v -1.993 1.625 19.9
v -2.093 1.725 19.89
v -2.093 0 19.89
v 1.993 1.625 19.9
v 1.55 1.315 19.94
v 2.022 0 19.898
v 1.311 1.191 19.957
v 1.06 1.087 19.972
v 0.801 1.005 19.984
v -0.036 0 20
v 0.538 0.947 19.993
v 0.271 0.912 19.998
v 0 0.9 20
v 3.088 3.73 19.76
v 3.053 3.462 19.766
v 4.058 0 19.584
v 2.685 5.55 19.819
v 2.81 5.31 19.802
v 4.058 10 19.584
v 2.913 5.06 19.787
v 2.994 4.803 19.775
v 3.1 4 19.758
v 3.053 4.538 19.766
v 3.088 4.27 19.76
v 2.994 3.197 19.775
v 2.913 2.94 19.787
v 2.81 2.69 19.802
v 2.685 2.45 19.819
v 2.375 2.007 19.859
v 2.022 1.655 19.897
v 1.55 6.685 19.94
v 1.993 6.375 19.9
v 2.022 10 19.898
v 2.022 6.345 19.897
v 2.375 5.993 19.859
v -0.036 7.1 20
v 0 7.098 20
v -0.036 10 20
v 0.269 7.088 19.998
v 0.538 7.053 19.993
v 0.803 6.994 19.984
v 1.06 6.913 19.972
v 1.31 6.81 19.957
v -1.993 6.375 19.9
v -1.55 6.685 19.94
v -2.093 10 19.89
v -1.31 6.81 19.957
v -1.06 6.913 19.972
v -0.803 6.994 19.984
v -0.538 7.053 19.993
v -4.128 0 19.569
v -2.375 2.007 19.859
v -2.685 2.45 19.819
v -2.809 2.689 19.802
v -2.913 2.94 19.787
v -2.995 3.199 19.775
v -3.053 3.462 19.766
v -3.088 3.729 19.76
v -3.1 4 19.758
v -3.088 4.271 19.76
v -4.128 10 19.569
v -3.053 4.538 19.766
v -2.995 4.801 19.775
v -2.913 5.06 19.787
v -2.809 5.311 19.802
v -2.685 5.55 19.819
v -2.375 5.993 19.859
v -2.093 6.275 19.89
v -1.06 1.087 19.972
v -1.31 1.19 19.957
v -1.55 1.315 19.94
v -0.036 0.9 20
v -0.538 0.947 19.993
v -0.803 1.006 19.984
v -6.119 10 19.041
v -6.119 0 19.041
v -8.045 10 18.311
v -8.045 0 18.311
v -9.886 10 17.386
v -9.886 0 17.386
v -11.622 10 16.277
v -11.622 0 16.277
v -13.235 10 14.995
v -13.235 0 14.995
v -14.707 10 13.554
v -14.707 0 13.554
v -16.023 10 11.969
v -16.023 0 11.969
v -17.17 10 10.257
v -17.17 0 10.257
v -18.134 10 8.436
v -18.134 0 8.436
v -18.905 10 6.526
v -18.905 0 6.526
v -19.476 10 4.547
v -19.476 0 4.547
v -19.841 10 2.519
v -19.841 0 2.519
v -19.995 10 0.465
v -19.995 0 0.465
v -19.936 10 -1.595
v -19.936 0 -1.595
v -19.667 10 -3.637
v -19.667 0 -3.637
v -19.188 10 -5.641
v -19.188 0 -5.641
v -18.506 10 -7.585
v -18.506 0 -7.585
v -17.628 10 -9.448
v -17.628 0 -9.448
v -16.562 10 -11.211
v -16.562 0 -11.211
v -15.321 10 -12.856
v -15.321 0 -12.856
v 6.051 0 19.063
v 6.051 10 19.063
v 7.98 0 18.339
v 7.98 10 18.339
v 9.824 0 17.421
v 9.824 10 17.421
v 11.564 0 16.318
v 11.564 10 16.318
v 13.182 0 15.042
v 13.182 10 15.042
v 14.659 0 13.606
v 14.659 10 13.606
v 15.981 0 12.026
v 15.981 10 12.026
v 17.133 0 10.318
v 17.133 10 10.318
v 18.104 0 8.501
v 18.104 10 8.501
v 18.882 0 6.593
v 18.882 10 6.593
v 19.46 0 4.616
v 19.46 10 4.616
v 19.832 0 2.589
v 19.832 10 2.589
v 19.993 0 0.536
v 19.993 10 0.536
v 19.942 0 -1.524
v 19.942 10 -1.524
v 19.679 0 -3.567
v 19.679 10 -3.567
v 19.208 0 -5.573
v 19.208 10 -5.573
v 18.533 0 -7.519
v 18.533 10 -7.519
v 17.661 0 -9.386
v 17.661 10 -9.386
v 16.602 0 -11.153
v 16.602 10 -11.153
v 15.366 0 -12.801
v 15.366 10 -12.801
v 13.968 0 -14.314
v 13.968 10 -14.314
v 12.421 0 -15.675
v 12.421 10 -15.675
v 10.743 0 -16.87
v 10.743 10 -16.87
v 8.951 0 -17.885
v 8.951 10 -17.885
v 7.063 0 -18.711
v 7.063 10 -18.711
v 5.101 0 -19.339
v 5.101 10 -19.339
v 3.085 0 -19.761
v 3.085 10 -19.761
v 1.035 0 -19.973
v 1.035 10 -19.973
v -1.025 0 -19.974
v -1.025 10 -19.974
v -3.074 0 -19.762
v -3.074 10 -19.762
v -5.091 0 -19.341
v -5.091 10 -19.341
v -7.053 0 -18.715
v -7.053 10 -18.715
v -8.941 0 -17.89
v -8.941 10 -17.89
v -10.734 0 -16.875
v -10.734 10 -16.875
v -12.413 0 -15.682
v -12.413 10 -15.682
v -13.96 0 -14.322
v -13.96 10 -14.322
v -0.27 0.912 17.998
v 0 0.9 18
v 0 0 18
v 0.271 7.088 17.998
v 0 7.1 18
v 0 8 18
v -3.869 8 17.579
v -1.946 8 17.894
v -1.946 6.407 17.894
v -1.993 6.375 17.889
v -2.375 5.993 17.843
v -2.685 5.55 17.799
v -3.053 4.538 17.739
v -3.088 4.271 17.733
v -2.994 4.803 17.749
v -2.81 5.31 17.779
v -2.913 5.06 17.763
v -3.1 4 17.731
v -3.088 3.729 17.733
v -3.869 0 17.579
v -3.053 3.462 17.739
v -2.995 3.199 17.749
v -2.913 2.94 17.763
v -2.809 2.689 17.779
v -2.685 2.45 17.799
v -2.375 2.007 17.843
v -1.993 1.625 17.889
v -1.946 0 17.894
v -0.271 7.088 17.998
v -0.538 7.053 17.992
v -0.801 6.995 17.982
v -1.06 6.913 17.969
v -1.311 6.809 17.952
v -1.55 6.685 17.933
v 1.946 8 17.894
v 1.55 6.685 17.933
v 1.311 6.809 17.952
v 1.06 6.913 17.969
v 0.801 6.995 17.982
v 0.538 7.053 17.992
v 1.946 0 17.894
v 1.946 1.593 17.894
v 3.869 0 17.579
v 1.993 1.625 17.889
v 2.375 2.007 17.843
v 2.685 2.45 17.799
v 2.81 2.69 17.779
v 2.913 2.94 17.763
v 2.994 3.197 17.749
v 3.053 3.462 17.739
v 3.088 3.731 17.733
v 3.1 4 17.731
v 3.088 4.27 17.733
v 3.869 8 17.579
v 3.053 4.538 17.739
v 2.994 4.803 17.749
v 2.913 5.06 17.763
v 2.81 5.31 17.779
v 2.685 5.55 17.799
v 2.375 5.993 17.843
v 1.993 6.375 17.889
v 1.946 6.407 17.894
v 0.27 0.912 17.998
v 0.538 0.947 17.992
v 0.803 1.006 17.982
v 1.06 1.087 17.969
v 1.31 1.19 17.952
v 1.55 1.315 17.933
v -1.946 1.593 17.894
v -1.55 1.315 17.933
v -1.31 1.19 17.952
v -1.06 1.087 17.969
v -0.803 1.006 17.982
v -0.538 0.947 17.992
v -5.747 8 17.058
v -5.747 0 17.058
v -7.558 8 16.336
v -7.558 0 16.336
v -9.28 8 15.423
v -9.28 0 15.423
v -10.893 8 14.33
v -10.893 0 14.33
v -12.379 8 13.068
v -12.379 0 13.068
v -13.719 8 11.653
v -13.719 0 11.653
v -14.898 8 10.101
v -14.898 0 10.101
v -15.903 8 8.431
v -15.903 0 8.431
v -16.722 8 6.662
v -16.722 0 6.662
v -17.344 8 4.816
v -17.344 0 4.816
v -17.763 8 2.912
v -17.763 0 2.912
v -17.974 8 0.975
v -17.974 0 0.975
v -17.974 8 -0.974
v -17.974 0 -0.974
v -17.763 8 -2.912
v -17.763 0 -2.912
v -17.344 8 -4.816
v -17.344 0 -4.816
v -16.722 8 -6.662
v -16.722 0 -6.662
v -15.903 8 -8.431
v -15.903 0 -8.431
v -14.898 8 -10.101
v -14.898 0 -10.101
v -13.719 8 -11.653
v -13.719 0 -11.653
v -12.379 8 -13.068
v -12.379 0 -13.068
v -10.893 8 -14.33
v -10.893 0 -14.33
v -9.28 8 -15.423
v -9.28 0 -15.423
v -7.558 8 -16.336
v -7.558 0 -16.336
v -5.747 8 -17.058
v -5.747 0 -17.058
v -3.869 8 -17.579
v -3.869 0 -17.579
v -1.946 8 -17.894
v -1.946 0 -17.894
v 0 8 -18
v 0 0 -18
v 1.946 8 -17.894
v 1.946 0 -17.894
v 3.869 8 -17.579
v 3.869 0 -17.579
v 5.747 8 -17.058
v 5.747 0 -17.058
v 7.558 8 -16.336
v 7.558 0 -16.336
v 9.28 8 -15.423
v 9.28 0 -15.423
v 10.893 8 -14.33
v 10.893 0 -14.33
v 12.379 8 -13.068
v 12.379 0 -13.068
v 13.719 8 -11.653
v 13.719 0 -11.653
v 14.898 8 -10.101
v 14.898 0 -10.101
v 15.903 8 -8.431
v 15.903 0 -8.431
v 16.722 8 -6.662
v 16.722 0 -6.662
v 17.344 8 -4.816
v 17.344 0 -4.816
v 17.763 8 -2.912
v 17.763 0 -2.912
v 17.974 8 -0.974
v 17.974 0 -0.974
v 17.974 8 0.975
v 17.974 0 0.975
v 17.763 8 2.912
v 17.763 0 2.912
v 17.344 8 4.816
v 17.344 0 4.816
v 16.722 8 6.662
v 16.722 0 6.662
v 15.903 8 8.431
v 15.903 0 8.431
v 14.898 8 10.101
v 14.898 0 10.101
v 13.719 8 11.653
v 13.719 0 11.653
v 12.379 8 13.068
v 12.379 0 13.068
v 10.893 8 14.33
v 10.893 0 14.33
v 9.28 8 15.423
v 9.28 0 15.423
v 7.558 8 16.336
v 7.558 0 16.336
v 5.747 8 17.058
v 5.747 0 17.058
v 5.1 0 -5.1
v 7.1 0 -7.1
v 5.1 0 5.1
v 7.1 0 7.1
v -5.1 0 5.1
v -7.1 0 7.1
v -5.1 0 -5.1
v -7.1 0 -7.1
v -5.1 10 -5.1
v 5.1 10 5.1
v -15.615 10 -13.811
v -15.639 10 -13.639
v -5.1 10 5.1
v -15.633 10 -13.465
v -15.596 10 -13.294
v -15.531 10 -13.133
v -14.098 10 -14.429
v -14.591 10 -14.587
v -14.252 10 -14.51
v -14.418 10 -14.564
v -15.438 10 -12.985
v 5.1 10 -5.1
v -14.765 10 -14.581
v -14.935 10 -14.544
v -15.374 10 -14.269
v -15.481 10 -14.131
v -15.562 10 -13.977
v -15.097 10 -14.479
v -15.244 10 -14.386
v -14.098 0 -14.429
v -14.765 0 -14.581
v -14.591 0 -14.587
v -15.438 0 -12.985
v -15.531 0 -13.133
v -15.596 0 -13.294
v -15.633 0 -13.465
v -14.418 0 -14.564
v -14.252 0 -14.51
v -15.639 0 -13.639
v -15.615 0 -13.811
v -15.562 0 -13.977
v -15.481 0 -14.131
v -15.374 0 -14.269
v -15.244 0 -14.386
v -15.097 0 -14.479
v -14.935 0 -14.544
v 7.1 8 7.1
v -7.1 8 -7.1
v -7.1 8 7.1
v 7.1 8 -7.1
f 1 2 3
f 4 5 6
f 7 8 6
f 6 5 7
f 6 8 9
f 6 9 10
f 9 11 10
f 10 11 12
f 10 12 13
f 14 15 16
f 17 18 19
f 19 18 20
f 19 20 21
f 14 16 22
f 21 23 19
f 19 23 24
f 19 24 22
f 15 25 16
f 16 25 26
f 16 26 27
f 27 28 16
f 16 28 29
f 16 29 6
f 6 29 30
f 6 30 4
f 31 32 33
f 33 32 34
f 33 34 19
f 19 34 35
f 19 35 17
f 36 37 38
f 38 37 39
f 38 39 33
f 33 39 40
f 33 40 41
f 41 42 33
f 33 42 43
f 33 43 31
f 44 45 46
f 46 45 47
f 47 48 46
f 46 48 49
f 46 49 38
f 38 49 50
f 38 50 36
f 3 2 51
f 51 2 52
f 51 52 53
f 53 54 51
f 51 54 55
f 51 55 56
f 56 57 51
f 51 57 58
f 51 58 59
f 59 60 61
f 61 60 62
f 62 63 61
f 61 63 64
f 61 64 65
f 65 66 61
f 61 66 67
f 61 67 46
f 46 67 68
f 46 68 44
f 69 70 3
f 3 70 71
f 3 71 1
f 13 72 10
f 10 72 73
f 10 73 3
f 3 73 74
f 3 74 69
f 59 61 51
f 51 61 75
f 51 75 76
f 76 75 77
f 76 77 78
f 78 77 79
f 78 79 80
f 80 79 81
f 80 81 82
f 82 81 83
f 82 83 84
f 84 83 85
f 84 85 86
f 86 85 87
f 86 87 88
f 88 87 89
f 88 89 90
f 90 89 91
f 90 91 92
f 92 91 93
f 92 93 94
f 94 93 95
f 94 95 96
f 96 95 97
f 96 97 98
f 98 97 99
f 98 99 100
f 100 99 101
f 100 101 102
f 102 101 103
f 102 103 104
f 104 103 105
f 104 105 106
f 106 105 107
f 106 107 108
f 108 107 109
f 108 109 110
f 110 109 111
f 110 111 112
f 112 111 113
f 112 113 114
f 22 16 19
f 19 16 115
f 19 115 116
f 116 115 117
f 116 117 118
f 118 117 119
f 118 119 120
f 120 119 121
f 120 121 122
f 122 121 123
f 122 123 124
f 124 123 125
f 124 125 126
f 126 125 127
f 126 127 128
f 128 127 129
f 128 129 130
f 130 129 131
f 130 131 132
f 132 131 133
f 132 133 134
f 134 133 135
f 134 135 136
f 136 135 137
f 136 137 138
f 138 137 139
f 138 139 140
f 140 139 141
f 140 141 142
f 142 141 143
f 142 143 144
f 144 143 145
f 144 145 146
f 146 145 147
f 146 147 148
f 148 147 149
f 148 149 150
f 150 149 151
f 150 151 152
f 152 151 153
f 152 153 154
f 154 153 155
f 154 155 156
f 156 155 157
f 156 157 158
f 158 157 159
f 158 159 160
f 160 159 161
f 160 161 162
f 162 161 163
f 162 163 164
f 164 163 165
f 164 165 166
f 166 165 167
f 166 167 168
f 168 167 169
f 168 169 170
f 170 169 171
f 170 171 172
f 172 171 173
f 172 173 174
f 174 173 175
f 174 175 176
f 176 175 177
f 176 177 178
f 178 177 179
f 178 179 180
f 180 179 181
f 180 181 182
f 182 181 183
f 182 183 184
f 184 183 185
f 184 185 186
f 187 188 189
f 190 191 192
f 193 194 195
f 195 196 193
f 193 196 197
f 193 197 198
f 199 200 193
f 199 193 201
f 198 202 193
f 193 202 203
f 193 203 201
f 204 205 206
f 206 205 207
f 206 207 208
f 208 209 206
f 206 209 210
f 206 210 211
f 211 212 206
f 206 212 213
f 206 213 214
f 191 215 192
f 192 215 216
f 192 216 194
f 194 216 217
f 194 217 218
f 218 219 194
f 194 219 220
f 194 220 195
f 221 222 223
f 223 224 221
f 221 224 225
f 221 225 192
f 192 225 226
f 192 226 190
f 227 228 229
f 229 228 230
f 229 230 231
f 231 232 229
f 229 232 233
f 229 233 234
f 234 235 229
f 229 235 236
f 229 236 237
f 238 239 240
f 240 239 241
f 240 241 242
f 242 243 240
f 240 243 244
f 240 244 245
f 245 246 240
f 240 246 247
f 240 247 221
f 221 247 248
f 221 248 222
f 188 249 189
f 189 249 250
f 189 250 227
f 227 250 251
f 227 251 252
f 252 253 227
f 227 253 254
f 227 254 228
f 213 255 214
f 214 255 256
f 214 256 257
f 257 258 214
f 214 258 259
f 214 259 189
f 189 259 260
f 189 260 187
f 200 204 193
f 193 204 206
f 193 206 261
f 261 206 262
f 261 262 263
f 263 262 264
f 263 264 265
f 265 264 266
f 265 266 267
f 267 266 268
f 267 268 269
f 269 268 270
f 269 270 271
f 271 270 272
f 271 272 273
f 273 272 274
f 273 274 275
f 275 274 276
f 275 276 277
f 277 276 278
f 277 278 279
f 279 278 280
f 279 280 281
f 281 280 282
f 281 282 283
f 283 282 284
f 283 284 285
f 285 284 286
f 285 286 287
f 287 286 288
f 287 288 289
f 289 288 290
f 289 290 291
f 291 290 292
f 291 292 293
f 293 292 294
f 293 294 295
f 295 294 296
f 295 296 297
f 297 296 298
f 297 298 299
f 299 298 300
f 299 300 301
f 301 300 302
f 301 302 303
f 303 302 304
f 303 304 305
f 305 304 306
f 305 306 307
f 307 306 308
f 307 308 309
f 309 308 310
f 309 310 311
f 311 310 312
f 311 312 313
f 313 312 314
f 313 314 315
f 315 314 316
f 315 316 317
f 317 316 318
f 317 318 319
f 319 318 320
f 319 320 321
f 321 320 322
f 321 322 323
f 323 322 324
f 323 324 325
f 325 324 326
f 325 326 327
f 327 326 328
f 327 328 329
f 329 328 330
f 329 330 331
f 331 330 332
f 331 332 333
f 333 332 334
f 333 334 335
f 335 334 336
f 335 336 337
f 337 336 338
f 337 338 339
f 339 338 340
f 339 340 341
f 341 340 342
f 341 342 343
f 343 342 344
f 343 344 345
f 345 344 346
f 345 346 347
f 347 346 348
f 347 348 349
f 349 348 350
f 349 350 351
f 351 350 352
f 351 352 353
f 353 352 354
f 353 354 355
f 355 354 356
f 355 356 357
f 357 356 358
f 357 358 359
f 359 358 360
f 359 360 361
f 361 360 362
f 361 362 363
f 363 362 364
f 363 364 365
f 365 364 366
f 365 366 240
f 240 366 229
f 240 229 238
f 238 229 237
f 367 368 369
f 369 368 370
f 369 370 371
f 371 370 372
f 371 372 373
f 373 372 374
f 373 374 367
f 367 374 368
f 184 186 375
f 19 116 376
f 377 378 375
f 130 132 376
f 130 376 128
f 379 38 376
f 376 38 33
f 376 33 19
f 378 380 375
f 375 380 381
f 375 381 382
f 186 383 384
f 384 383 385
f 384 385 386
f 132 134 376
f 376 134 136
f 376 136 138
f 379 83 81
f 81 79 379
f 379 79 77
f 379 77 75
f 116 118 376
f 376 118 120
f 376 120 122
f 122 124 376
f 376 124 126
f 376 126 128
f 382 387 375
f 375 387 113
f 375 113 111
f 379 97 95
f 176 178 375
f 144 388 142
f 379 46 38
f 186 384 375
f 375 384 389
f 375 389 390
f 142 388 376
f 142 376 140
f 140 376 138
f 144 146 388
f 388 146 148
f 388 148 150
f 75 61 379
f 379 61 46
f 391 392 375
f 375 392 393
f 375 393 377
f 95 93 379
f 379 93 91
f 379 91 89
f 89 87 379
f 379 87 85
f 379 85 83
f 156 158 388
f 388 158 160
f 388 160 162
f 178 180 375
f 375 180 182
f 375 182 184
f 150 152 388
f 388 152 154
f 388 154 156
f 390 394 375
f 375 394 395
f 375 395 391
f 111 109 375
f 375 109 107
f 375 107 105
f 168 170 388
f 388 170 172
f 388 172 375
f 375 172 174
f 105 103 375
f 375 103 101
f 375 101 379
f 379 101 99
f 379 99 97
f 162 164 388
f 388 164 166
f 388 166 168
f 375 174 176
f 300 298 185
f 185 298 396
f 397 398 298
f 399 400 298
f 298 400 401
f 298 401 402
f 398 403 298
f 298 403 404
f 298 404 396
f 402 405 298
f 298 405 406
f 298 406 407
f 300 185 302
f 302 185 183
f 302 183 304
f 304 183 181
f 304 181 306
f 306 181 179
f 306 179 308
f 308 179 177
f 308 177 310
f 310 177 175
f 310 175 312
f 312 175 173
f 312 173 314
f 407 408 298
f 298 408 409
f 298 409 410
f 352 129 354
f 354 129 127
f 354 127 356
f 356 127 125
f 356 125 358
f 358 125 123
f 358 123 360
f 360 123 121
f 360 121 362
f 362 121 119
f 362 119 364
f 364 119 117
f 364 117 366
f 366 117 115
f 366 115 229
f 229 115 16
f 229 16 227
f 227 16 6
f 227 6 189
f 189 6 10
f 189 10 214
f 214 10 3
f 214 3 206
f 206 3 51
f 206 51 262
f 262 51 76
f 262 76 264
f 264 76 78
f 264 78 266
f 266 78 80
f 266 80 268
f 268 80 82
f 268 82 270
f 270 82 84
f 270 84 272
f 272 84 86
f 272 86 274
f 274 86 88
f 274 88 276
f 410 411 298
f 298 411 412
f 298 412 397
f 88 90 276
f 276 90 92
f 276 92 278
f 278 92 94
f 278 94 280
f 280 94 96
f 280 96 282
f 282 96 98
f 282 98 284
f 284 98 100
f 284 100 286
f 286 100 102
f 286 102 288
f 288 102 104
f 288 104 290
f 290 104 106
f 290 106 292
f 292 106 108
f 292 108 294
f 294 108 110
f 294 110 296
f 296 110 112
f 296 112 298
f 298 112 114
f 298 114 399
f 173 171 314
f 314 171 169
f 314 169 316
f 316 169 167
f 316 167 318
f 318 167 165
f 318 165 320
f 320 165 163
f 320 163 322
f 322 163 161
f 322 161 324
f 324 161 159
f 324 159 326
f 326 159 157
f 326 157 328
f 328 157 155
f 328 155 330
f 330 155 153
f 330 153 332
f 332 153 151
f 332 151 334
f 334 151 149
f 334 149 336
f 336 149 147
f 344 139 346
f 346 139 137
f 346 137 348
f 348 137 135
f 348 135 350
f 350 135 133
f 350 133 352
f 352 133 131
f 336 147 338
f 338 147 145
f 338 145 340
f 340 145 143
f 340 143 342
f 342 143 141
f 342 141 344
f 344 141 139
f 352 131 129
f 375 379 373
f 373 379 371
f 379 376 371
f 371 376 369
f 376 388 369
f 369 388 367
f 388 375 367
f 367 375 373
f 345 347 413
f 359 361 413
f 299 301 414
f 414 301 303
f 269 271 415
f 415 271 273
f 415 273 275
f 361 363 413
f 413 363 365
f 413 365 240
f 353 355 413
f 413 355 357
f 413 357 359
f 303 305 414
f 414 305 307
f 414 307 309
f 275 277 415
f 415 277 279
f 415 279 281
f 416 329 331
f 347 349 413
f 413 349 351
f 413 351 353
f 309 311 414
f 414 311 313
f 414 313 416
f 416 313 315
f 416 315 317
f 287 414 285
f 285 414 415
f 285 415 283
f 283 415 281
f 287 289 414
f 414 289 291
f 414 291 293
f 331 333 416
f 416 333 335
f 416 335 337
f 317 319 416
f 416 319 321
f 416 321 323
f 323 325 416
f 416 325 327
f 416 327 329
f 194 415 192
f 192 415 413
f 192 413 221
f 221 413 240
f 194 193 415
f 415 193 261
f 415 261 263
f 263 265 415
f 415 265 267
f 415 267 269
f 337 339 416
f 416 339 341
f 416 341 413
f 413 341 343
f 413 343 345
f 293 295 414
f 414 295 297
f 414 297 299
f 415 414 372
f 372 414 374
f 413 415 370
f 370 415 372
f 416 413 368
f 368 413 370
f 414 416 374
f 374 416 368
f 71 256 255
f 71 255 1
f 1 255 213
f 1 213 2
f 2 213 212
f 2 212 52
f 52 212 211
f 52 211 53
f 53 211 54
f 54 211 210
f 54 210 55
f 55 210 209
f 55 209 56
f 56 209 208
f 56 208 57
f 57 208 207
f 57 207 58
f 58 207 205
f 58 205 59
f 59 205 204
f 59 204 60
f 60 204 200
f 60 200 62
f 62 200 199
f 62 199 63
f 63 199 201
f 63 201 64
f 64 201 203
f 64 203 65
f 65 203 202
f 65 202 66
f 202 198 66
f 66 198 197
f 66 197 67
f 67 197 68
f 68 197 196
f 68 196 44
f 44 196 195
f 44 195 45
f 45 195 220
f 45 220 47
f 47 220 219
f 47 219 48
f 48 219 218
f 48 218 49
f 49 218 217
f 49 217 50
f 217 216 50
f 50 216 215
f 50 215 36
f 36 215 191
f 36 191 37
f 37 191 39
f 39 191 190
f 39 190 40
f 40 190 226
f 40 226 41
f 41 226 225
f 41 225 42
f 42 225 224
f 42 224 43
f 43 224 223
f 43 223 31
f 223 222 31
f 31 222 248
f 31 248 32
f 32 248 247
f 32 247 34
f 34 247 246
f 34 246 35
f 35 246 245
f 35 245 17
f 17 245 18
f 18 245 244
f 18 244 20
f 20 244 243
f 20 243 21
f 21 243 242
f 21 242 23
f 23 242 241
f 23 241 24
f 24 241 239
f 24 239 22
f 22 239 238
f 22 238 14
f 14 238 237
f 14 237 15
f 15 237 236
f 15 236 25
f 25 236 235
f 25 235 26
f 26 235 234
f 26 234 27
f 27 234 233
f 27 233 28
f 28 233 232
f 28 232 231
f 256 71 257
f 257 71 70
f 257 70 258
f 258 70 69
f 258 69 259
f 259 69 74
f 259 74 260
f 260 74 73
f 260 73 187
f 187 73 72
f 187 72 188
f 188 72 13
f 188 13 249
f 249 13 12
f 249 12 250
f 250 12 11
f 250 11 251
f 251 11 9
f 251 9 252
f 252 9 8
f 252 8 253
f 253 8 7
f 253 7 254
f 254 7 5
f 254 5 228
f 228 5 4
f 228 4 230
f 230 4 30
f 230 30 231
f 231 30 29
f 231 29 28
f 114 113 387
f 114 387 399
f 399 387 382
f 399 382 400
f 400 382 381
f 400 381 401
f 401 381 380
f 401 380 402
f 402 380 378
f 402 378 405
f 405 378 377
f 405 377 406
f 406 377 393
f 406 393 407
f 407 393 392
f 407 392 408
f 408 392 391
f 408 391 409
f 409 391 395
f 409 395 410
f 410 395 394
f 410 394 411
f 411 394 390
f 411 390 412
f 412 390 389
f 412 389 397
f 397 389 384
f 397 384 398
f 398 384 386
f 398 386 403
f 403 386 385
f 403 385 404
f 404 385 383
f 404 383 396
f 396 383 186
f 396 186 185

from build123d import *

# Parameters (mm, degrees)
SKETCH1_R           = 20
BOSS_EXTRUDE1_DEPTH = 10
SKETCH2_W           = 10.2
SKETCH2_H           = 10.2
CUT_EXTRUDE2_DEPTH  = 11
SHELL3_T            = -2
SKETCH3_R           = 3.1
CUT_EXTRUDE3_DEPTH  = 13.9
BOSS_EXTRUDE2_DEPTH = 10


with BuildPart() as part:
    # Sketch1 → Boss-Extrude1 (new body)
    with BuildSketch(Plane(origin=(0, 0, 0), x_dir=(1, 0, 0), z_dir=(0, 1, 0))):
        Circle(SKETCH1_R)
    extrude(amount=BOSS_EXTRUDE1_DEPTH)

    # Sketch2 → Cut-Extrude2 (cut, through all)
    with BuildSketch(Plane.XZ):
        Rectangle(SKETCH2_W, SKETCH2_H)
    extrude(amount=-CUT_EXTRUDE2_DEPTH, mode=Mode.SUBTRACT)

    # Shell3
    shell3_openings = [part.faces().sort_by_distance(p)[0] for p in [
        (0, 0, 0),
    ]]
    offset(amount=SHELL3_T, openings=shell3_openings, kind=Kind.INTERSECTION)

    # Sketch3 → Cut-Extrude3 (cut, through all)
    with BuildSketch(Plane.XY.offset(7.1)):
        with Locations((0, 4)):
            Circle(SKETCH3_R)
    extrude(amount=CUT_EXTRUDE3_DEPTH, mode=Mode.SUBTRACT)

    # Sketch4 → Boss-Extrude2 (add)
    with BuildSketch(Plane(origin=(0, 10, 0), x_dir=(1, 0, 0), z_dir=(0, 1, 0))):
        with BuildLine():
            Line((-13.960317173, 14.321646009), (-15.320888862, 12.855752194))
            ThreePointArc((-15.320888862, 12.855752194), (-15.373549926, 14.268984946), (-13.960317173, 14.321646009))
        make_face()
    extrude(amount=-BOSS_EXTRUDE2_DEPTH)


solid = part.part
